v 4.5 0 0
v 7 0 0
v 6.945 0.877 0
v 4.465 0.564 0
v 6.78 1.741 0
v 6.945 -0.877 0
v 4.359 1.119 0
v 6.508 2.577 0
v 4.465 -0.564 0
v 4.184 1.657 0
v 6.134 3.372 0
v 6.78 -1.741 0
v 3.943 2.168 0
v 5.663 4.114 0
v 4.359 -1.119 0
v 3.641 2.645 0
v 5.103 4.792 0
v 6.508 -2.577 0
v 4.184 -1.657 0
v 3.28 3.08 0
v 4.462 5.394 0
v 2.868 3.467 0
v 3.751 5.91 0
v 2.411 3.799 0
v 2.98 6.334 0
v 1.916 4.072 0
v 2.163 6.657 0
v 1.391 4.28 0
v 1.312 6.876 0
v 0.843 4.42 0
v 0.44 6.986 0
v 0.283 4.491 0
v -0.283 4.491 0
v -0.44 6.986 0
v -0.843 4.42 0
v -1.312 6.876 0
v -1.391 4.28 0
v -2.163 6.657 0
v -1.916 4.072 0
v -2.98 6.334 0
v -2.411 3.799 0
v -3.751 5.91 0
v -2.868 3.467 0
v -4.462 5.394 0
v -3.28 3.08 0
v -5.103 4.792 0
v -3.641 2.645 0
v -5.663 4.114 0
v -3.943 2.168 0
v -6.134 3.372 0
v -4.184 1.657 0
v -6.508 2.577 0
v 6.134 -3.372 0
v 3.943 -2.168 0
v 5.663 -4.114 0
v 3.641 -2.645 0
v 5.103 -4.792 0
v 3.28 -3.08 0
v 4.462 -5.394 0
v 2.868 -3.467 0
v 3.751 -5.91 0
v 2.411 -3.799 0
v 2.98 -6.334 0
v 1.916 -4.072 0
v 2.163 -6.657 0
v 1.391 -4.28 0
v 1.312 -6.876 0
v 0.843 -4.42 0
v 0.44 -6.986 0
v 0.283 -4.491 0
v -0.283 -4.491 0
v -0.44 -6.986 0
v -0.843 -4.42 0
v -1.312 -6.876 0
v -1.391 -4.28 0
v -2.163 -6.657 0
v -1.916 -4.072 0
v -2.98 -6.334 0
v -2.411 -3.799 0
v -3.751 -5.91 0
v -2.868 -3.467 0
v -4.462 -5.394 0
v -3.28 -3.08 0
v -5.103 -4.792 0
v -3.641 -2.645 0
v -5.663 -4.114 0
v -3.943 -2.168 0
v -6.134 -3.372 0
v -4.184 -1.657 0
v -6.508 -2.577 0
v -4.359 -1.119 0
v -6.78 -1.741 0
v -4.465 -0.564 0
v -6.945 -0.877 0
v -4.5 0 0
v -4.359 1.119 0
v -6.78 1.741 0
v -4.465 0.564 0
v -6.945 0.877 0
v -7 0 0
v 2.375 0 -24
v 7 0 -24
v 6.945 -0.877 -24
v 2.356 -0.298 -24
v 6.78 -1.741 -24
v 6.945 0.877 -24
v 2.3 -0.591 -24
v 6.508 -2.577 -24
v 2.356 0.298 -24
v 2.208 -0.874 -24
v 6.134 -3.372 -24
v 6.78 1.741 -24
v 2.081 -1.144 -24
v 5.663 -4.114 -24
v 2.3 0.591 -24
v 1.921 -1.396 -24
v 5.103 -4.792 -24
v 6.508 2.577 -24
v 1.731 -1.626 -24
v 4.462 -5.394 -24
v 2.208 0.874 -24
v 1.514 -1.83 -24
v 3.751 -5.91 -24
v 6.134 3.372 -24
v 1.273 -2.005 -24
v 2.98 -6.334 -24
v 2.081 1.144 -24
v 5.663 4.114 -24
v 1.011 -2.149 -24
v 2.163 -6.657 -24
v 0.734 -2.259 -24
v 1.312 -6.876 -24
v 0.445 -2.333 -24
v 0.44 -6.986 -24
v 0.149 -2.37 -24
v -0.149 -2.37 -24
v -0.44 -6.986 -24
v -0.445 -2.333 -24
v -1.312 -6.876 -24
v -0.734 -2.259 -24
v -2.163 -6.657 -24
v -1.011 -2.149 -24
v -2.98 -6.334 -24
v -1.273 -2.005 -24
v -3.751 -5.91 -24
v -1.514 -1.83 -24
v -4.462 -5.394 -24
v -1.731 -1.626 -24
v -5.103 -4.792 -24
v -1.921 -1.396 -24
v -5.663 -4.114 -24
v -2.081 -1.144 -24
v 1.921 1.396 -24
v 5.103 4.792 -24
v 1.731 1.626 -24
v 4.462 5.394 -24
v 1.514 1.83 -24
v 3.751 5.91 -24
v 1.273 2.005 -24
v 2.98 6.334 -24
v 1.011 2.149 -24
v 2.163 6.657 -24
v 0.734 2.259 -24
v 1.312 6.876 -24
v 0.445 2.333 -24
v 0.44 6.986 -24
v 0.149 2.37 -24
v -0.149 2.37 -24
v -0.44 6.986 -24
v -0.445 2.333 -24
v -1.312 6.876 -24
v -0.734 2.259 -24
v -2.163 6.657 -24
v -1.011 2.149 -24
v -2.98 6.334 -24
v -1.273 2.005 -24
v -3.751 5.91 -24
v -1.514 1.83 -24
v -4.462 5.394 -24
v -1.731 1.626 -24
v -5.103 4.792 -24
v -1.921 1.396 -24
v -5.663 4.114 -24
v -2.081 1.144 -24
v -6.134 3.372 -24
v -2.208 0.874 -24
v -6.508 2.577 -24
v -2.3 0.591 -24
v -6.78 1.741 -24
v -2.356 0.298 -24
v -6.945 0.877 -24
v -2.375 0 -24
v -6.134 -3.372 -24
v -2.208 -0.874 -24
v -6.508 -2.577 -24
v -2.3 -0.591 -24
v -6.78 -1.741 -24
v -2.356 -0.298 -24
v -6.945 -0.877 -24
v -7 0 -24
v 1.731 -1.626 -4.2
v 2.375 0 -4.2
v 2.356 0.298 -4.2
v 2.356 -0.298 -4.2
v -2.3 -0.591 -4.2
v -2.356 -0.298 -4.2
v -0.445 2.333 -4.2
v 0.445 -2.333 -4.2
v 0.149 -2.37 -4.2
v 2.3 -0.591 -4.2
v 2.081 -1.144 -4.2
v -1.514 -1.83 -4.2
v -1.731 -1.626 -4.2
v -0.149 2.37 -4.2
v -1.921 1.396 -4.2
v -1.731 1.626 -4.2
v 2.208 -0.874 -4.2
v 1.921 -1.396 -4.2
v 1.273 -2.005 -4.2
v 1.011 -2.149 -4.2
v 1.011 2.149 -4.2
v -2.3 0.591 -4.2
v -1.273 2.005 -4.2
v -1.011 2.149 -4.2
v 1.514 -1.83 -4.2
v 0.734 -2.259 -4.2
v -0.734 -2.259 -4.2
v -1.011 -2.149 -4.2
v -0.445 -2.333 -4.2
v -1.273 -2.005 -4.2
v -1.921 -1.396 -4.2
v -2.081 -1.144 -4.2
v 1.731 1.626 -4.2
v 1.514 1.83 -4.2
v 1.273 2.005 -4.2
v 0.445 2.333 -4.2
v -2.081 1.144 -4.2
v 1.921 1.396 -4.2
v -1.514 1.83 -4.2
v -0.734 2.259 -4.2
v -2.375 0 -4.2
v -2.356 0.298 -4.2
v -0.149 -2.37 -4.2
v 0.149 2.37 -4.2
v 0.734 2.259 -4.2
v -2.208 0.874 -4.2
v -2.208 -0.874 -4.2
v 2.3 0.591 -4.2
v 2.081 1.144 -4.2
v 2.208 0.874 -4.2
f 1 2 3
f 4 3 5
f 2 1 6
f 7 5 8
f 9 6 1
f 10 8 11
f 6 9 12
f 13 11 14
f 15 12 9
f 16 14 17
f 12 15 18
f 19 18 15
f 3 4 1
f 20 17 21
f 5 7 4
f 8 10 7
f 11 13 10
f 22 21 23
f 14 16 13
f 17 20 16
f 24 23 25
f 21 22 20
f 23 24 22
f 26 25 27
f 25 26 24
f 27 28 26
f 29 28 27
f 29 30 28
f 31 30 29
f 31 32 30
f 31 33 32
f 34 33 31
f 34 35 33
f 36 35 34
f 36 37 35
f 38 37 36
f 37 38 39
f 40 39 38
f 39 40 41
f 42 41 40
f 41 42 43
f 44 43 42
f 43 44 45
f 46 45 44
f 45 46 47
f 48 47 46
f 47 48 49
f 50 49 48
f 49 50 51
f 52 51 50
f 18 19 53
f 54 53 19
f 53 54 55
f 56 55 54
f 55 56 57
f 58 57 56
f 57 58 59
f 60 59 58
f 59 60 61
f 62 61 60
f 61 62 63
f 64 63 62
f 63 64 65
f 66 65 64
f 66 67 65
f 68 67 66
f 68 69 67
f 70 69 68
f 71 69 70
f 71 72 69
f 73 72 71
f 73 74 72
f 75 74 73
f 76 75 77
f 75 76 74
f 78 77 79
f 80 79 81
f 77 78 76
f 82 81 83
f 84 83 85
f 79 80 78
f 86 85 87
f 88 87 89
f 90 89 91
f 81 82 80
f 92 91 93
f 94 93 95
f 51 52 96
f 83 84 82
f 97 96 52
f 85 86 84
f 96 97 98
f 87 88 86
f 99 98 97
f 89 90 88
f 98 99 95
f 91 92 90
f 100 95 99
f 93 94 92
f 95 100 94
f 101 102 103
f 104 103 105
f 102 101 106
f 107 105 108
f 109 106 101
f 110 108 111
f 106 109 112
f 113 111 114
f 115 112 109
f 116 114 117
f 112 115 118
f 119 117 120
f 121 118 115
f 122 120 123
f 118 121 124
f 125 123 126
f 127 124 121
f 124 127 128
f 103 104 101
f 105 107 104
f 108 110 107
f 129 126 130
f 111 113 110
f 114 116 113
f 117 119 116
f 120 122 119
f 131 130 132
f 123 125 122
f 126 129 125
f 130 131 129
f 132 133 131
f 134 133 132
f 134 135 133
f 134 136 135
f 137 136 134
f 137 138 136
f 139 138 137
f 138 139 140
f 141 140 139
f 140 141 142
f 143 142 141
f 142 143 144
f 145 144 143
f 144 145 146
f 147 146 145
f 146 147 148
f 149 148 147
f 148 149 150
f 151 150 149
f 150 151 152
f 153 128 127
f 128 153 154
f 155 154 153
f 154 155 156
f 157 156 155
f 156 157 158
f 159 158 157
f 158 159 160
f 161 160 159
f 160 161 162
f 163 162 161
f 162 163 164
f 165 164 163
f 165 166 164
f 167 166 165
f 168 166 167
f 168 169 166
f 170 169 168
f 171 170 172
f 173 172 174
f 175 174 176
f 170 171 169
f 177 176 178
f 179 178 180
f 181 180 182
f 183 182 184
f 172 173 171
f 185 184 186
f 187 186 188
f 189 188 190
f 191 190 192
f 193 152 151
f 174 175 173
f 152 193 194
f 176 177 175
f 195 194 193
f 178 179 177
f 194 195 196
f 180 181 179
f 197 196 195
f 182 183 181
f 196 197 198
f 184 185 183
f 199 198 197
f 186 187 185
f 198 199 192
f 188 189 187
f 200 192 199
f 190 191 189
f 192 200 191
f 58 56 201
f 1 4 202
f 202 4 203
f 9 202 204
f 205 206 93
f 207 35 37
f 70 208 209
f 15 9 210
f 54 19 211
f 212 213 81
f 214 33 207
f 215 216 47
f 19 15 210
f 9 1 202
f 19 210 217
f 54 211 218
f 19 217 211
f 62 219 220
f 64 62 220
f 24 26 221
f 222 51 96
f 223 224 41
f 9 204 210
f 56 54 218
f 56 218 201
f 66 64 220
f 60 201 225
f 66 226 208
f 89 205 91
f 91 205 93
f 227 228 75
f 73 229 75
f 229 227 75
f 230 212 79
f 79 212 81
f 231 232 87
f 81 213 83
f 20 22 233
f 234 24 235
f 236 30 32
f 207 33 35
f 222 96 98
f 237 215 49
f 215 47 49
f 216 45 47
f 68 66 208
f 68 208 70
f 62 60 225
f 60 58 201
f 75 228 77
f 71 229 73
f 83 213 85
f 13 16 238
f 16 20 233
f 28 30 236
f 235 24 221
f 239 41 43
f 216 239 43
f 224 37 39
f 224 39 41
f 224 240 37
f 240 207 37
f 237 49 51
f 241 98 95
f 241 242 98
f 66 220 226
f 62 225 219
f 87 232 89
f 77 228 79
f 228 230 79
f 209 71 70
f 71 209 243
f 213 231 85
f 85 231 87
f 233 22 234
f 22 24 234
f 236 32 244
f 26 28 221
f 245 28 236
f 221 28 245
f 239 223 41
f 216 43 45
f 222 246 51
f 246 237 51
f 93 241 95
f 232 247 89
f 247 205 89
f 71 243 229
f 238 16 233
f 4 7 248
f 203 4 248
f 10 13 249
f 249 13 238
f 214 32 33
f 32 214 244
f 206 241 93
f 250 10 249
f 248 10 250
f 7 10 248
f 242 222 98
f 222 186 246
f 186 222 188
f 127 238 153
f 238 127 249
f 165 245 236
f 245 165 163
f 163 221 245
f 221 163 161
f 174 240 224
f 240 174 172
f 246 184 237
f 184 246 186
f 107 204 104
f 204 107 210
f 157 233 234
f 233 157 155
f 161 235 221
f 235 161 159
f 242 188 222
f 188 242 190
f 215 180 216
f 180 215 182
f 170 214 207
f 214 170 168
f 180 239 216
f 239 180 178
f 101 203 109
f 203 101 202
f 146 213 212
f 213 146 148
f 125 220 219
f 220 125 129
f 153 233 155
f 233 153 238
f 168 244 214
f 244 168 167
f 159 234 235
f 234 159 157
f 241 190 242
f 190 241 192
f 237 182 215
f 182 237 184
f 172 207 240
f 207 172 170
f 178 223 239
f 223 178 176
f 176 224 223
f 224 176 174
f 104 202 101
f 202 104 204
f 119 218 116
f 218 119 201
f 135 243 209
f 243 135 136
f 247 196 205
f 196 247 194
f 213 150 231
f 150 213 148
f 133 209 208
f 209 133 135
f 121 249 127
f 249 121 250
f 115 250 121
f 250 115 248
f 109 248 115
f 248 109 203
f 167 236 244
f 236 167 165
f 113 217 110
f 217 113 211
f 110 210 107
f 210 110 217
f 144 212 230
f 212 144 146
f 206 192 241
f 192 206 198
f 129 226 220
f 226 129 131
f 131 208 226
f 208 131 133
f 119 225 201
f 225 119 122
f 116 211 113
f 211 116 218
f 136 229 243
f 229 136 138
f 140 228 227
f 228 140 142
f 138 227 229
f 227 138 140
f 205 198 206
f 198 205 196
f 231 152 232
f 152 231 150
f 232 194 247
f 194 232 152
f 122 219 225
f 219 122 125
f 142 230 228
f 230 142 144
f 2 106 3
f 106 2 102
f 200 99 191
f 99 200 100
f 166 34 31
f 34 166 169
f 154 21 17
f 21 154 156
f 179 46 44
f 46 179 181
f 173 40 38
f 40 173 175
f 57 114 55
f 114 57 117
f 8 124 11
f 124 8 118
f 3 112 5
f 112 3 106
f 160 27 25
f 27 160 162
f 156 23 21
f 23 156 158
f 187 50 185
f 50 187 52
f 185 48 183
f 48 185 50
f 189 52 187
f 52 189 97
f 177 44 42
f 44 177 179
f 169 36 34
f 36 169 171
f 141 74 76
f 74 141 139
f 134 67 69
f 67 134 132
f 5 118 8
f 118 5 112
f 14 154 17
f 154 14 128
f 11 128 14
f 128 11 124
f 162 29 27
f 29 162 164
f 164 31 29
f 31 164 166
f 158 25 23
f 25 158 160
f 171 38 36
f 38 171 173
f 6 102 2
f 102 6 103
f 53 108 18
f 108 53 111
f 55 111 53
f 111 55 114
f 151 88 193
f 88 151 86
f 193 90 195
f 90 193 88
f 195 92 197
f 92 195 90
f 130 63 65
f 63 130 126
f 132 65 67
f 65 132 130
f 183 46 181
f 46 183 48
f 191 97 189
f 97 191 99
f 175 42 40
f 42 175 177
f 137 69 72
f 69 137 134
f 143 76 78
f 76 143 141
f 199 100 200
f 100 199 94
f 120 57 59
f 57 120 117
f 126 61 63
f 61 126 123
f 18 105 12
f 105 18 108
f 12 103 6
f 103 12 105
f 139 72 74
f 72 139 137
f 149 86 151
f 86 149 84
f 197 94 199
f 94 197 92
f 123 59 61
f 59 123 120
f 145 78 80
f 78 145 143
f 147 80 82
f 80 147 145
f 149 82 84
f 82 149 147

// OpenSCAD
$fn = 50;


difference() {
	union() {
		translate(v = [0, 0, -24.0000000000]) {
			cylinder(h = 24, r = 7.0000000000);
		}
		cylinder(h = 0, r = 13.0000000000);
	}
	union() {
		translate(v = [0, 0, 0]) {
			rotate(a = [0, 0, 0]) {
				difference() {
					union() {
						#translate(v = [0, 0, -24.0000000000]) {
							cylinder(h = 24, r = 2.2500000000);
						}
						#translate(v = [0, 0, -4.2000000000]) {
							cylinder(h = 4.2000000000, r1 = 2.3750000000, r2 = 4.5000000000);
						}
						#translate(v = [0, 0, -24.0000000000]) {
							cylinder(h = 24, r = 2.3750000000);
						}
						#translate(v = [0, 0, -24.0000000000]) {
							cylinder(h = 24, r = 2.2500000000);
						}
					}
					union();
				}
			}
		}
	}
}
